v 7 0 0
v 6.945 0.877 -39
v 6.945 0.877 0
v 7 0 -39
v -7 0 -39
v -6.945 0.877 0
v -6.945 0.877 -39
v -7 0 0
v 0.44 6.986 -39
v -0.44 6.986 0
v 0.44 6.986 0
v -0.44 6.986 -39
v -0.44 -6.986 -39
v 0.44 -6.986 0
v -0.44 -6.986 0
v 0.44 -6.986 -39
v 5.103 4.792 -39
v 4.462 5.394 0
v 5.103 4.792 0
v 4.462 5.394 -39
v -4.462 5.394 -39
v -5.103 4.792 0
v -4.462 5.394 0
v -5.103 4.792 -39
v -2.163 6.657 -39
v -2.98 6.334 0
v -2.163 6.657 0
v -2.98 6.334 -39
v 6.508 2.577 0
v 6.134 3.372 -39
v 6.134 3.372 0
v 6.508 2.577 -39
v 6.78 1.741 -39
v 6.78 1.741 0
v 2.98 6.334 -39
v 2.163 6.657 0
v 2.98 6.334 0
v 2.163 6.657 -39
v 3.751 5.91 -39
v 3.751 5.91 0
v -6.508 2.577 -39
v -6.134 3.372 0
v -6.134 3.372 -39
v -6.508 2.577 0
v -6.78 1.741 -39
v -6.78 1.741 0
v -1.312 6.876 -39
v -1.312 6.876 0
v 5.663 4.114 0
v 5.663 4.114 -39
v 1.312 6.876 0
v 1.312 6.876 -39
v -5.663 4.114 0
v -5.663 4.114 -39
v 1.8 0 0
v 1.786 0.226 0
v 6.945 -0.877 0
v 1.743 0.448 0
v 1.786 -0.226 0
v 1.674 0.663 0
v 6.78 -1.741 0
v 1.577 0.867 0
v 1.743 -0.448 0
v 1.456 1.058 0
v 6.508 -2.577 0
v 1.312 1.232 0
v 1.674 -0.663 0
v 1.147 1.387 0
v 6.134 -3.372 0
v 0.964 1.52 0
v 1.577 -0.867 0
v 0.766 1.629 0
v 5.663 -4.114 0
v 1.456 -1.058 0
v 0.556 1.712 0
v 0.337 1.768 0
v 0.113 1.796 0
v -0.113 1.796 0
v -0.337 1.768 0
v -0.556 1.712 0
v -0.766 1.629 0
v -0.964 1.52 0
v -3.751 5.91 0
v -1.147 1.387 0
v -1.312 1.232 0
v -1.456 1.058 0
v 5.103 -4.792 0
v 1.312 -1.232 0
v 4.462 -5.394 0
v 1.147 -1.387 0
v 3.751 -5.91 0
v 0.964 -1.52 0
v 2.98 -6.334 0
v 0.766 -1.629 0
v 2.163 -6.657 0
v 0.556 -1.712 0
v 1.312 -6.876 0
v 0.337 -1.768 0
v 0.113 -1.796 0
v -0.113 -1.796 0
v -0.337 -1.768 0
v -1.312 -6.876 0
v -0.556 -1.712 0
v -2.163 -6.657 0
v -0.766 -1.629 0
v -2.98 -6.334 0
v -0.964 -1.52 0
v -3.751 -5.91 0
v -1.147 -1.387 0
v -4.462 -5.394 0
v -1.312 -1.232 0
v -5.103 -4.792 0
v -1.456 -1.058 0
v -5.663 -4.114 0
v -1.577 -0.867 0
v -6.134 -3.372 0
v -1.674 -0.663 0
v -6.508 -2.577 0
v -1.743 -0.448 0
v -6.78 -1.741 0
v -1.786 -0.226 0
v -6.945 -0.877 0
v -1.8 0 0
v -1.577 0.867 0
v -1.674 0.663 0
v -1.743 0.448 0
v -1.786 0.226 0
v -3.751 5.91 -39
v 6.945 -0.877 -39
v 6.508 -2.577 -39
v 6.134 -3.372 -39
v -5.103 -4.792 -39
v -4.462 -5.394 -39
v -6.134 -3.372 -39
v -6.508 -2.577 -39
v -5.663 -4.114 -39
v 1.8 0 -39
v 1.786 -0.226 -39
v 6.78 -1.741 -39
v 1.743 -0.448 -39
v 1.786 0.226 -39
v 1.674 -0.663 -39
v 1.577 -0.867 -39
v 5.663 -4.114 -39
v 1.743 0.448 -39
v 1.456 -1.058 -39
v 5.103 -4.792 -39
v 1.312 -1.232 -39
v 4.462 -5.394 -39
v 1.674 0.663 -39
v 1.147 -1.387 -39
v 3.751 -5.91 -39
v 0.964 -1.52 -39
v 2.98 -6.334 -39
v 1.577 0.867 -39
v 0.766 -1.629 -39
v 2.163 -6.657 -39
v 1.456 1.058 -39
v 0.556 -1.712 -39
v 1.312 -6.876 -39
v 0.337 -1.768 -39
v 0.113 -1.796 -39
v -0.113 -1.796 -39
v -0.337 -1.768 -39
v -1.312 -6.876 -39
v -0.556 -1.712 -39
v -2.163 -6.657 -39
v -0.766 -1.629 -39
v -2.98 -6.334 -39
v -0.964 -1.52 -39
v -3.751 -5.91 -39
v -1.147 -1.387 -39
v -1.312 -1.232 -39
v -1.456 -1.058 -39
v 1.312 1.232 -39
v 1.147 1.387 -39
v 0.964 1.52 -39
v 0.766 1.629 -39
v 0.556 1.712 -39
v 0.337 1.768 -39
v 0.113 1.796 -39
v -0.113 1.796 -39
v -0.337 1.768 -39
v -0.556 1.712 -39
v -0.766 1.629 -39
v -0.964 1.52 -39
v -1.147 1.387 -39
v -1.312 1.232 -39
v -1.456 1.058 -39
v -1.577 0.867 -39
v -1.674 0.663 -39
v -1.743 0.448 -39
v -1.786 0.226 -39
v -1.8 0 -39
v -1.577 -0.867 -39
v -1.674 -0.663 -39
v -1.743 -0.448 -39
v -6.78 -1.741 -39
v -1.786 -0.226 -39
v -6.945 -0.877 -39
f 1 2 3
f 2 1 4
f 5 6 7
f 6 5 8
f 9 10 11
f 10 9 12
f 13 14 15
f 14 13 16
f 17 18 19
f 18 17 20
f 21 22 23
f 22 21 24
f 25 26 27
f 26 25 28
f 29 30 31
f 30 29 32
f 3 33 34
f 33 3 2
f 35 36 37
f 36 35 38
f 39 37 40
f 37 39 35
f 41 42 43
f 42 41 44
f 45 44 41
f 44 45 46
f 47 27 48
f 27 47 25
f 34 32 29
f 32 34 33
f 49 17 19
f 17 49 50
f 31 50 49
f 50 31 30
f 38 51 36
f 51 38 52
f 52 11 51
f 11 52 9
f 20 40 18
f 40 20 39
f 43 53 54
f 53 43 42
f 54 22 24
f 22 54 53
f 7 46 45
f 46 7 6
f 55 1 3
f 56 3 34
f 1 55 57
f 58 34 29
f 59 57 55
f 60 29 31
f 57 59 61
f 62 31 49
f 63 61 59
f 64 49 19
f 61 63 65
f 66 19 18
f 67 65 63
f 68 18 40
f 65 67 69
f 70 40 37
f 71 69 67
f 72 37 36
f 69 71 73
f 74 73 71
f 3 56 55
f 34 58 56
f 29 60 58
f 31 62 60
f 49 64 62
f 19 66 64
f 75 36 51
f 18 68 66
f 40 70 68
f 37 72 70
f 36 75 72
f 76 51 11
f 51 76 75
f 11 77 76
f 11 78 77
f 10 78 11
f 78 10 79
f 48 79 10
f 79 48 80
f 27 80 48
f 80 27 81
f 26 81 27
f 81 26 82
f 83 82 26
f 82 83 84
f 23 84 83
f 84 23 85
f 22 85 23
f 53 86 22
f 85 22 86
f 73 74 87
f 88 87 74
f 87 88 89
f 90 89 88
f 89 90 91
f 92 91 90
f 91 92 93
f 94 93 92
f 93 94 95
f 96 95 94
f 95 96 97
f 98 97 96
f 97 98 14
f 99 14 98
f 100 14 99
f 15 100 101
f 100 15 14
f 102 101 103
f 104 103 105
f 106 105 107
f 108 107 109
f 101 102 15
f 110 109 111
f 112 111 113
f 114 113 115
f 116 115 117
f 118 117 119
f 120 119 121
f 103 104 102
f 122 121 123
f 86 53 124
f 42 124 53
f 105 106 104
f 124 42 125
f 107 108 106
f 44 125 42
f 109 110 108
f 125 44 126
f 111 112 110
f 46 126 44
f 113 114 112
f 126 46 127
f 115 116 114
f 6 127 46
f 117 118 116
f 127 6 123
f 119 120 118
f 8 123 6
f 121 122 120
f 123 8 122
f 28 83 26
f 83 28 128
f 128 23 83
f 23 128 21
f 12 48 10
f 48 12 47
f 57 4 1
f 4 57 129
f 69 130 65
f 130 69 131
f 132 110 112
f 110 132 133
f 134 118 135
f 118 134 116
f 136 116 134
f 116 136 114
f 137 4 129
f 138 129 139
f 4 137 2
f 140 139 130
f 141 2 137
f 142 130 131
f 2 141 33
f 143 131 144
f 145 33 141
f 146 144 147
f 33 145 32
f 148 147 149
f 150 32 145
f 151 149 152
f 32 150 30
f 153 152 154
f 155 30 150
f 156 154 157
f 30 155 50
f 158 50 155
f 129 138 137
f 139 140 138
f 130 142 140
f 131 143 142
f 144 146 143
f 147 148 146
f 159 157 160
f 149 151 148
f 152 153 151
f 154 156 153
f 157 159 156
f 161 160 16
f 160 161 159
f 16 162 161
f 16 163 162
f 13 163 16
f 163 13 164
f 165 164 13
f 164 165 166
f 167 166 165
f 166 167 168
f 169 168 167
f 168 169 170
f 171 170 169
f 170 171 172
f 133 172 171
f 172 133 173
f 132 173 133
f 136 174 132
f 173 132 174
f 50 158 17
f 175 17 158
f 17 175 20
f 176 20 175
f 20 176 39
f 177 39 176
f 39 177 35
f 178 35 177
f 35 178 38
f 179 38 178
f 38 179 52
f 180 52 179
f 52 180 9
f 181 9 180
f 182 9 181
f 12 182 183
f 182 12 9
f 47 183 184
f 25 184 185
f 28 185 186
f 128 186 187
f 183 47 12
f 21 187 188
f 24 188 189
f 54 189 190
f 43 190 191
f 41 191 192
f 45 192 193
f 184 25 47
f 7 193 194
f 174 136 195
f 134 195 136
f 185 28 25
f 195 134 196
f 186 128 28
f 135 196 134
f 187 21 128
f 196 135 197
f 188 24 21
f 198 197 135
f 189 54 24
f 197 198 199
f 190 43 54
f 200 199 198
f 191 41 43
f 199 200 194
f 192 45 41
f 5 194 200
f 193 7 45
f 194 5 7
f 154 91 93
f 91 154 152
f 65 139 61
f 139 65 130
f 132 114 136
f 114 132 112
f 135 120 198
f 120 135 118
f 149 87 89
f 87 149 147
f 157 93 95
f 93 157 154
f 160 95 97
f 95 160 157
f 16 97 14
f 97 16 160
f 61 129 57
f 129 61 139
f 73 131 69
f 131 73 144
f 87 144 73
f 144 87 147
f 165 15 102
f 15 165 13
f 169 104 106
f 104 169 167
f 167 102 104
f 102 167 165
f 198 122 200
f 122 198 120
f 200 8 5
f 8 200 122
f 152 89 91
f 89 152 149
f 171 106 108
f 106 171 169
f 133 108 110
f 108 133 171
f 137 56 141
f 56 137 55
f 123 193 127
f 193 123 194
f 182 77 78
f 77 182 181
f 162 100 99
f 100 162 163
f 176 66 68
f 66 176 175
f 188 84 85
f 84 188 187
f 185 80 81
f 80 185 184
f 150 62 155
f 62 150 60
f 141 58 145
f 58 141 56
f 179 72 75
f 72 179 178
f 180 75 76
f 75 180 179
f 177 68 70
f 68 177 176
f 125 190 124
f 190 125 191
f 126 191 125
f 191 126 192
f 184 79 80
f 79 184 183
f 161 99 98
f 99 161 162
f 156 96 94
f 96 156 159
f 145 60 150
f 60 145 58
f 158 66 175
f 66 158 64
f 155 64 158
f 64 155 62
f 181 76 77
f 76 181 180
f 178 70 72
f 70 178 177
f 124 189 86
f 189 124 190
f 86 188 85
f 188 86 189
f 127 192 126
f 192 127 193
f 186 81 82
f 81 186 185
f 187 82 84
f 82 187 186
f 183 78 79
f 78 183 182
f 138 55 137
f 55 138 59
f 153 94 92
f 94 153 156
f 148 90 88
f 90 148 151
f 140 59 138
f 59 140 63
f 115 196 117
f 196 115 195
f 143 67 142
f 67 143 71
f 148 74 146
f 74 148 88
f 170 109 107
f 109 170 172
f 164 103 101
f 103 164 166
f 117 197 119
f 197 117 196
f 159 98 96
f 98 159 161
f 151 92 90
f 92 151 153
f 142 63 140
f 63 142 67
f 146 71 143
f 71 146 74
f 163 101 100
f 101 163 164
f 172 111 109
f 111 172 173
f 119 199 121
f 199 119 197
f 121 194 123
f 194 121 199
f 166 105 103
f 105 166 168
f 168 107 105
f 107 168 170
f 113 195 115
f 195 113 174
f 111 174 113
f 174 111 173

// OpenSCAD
$fn = 50;


difference() {
	union() {
		translate(v = [0, 0, -39.0000000000]) {
			cylinder(h = 39, r = 7.0000000000);
		}
		cylinder(h = 0, r = 10.0000000000);
	}
	union() {
		#translate(v = [0, 0, -39]) {
			cylinder(h = 39, r = 1.8000000000);
		}
	}
}
